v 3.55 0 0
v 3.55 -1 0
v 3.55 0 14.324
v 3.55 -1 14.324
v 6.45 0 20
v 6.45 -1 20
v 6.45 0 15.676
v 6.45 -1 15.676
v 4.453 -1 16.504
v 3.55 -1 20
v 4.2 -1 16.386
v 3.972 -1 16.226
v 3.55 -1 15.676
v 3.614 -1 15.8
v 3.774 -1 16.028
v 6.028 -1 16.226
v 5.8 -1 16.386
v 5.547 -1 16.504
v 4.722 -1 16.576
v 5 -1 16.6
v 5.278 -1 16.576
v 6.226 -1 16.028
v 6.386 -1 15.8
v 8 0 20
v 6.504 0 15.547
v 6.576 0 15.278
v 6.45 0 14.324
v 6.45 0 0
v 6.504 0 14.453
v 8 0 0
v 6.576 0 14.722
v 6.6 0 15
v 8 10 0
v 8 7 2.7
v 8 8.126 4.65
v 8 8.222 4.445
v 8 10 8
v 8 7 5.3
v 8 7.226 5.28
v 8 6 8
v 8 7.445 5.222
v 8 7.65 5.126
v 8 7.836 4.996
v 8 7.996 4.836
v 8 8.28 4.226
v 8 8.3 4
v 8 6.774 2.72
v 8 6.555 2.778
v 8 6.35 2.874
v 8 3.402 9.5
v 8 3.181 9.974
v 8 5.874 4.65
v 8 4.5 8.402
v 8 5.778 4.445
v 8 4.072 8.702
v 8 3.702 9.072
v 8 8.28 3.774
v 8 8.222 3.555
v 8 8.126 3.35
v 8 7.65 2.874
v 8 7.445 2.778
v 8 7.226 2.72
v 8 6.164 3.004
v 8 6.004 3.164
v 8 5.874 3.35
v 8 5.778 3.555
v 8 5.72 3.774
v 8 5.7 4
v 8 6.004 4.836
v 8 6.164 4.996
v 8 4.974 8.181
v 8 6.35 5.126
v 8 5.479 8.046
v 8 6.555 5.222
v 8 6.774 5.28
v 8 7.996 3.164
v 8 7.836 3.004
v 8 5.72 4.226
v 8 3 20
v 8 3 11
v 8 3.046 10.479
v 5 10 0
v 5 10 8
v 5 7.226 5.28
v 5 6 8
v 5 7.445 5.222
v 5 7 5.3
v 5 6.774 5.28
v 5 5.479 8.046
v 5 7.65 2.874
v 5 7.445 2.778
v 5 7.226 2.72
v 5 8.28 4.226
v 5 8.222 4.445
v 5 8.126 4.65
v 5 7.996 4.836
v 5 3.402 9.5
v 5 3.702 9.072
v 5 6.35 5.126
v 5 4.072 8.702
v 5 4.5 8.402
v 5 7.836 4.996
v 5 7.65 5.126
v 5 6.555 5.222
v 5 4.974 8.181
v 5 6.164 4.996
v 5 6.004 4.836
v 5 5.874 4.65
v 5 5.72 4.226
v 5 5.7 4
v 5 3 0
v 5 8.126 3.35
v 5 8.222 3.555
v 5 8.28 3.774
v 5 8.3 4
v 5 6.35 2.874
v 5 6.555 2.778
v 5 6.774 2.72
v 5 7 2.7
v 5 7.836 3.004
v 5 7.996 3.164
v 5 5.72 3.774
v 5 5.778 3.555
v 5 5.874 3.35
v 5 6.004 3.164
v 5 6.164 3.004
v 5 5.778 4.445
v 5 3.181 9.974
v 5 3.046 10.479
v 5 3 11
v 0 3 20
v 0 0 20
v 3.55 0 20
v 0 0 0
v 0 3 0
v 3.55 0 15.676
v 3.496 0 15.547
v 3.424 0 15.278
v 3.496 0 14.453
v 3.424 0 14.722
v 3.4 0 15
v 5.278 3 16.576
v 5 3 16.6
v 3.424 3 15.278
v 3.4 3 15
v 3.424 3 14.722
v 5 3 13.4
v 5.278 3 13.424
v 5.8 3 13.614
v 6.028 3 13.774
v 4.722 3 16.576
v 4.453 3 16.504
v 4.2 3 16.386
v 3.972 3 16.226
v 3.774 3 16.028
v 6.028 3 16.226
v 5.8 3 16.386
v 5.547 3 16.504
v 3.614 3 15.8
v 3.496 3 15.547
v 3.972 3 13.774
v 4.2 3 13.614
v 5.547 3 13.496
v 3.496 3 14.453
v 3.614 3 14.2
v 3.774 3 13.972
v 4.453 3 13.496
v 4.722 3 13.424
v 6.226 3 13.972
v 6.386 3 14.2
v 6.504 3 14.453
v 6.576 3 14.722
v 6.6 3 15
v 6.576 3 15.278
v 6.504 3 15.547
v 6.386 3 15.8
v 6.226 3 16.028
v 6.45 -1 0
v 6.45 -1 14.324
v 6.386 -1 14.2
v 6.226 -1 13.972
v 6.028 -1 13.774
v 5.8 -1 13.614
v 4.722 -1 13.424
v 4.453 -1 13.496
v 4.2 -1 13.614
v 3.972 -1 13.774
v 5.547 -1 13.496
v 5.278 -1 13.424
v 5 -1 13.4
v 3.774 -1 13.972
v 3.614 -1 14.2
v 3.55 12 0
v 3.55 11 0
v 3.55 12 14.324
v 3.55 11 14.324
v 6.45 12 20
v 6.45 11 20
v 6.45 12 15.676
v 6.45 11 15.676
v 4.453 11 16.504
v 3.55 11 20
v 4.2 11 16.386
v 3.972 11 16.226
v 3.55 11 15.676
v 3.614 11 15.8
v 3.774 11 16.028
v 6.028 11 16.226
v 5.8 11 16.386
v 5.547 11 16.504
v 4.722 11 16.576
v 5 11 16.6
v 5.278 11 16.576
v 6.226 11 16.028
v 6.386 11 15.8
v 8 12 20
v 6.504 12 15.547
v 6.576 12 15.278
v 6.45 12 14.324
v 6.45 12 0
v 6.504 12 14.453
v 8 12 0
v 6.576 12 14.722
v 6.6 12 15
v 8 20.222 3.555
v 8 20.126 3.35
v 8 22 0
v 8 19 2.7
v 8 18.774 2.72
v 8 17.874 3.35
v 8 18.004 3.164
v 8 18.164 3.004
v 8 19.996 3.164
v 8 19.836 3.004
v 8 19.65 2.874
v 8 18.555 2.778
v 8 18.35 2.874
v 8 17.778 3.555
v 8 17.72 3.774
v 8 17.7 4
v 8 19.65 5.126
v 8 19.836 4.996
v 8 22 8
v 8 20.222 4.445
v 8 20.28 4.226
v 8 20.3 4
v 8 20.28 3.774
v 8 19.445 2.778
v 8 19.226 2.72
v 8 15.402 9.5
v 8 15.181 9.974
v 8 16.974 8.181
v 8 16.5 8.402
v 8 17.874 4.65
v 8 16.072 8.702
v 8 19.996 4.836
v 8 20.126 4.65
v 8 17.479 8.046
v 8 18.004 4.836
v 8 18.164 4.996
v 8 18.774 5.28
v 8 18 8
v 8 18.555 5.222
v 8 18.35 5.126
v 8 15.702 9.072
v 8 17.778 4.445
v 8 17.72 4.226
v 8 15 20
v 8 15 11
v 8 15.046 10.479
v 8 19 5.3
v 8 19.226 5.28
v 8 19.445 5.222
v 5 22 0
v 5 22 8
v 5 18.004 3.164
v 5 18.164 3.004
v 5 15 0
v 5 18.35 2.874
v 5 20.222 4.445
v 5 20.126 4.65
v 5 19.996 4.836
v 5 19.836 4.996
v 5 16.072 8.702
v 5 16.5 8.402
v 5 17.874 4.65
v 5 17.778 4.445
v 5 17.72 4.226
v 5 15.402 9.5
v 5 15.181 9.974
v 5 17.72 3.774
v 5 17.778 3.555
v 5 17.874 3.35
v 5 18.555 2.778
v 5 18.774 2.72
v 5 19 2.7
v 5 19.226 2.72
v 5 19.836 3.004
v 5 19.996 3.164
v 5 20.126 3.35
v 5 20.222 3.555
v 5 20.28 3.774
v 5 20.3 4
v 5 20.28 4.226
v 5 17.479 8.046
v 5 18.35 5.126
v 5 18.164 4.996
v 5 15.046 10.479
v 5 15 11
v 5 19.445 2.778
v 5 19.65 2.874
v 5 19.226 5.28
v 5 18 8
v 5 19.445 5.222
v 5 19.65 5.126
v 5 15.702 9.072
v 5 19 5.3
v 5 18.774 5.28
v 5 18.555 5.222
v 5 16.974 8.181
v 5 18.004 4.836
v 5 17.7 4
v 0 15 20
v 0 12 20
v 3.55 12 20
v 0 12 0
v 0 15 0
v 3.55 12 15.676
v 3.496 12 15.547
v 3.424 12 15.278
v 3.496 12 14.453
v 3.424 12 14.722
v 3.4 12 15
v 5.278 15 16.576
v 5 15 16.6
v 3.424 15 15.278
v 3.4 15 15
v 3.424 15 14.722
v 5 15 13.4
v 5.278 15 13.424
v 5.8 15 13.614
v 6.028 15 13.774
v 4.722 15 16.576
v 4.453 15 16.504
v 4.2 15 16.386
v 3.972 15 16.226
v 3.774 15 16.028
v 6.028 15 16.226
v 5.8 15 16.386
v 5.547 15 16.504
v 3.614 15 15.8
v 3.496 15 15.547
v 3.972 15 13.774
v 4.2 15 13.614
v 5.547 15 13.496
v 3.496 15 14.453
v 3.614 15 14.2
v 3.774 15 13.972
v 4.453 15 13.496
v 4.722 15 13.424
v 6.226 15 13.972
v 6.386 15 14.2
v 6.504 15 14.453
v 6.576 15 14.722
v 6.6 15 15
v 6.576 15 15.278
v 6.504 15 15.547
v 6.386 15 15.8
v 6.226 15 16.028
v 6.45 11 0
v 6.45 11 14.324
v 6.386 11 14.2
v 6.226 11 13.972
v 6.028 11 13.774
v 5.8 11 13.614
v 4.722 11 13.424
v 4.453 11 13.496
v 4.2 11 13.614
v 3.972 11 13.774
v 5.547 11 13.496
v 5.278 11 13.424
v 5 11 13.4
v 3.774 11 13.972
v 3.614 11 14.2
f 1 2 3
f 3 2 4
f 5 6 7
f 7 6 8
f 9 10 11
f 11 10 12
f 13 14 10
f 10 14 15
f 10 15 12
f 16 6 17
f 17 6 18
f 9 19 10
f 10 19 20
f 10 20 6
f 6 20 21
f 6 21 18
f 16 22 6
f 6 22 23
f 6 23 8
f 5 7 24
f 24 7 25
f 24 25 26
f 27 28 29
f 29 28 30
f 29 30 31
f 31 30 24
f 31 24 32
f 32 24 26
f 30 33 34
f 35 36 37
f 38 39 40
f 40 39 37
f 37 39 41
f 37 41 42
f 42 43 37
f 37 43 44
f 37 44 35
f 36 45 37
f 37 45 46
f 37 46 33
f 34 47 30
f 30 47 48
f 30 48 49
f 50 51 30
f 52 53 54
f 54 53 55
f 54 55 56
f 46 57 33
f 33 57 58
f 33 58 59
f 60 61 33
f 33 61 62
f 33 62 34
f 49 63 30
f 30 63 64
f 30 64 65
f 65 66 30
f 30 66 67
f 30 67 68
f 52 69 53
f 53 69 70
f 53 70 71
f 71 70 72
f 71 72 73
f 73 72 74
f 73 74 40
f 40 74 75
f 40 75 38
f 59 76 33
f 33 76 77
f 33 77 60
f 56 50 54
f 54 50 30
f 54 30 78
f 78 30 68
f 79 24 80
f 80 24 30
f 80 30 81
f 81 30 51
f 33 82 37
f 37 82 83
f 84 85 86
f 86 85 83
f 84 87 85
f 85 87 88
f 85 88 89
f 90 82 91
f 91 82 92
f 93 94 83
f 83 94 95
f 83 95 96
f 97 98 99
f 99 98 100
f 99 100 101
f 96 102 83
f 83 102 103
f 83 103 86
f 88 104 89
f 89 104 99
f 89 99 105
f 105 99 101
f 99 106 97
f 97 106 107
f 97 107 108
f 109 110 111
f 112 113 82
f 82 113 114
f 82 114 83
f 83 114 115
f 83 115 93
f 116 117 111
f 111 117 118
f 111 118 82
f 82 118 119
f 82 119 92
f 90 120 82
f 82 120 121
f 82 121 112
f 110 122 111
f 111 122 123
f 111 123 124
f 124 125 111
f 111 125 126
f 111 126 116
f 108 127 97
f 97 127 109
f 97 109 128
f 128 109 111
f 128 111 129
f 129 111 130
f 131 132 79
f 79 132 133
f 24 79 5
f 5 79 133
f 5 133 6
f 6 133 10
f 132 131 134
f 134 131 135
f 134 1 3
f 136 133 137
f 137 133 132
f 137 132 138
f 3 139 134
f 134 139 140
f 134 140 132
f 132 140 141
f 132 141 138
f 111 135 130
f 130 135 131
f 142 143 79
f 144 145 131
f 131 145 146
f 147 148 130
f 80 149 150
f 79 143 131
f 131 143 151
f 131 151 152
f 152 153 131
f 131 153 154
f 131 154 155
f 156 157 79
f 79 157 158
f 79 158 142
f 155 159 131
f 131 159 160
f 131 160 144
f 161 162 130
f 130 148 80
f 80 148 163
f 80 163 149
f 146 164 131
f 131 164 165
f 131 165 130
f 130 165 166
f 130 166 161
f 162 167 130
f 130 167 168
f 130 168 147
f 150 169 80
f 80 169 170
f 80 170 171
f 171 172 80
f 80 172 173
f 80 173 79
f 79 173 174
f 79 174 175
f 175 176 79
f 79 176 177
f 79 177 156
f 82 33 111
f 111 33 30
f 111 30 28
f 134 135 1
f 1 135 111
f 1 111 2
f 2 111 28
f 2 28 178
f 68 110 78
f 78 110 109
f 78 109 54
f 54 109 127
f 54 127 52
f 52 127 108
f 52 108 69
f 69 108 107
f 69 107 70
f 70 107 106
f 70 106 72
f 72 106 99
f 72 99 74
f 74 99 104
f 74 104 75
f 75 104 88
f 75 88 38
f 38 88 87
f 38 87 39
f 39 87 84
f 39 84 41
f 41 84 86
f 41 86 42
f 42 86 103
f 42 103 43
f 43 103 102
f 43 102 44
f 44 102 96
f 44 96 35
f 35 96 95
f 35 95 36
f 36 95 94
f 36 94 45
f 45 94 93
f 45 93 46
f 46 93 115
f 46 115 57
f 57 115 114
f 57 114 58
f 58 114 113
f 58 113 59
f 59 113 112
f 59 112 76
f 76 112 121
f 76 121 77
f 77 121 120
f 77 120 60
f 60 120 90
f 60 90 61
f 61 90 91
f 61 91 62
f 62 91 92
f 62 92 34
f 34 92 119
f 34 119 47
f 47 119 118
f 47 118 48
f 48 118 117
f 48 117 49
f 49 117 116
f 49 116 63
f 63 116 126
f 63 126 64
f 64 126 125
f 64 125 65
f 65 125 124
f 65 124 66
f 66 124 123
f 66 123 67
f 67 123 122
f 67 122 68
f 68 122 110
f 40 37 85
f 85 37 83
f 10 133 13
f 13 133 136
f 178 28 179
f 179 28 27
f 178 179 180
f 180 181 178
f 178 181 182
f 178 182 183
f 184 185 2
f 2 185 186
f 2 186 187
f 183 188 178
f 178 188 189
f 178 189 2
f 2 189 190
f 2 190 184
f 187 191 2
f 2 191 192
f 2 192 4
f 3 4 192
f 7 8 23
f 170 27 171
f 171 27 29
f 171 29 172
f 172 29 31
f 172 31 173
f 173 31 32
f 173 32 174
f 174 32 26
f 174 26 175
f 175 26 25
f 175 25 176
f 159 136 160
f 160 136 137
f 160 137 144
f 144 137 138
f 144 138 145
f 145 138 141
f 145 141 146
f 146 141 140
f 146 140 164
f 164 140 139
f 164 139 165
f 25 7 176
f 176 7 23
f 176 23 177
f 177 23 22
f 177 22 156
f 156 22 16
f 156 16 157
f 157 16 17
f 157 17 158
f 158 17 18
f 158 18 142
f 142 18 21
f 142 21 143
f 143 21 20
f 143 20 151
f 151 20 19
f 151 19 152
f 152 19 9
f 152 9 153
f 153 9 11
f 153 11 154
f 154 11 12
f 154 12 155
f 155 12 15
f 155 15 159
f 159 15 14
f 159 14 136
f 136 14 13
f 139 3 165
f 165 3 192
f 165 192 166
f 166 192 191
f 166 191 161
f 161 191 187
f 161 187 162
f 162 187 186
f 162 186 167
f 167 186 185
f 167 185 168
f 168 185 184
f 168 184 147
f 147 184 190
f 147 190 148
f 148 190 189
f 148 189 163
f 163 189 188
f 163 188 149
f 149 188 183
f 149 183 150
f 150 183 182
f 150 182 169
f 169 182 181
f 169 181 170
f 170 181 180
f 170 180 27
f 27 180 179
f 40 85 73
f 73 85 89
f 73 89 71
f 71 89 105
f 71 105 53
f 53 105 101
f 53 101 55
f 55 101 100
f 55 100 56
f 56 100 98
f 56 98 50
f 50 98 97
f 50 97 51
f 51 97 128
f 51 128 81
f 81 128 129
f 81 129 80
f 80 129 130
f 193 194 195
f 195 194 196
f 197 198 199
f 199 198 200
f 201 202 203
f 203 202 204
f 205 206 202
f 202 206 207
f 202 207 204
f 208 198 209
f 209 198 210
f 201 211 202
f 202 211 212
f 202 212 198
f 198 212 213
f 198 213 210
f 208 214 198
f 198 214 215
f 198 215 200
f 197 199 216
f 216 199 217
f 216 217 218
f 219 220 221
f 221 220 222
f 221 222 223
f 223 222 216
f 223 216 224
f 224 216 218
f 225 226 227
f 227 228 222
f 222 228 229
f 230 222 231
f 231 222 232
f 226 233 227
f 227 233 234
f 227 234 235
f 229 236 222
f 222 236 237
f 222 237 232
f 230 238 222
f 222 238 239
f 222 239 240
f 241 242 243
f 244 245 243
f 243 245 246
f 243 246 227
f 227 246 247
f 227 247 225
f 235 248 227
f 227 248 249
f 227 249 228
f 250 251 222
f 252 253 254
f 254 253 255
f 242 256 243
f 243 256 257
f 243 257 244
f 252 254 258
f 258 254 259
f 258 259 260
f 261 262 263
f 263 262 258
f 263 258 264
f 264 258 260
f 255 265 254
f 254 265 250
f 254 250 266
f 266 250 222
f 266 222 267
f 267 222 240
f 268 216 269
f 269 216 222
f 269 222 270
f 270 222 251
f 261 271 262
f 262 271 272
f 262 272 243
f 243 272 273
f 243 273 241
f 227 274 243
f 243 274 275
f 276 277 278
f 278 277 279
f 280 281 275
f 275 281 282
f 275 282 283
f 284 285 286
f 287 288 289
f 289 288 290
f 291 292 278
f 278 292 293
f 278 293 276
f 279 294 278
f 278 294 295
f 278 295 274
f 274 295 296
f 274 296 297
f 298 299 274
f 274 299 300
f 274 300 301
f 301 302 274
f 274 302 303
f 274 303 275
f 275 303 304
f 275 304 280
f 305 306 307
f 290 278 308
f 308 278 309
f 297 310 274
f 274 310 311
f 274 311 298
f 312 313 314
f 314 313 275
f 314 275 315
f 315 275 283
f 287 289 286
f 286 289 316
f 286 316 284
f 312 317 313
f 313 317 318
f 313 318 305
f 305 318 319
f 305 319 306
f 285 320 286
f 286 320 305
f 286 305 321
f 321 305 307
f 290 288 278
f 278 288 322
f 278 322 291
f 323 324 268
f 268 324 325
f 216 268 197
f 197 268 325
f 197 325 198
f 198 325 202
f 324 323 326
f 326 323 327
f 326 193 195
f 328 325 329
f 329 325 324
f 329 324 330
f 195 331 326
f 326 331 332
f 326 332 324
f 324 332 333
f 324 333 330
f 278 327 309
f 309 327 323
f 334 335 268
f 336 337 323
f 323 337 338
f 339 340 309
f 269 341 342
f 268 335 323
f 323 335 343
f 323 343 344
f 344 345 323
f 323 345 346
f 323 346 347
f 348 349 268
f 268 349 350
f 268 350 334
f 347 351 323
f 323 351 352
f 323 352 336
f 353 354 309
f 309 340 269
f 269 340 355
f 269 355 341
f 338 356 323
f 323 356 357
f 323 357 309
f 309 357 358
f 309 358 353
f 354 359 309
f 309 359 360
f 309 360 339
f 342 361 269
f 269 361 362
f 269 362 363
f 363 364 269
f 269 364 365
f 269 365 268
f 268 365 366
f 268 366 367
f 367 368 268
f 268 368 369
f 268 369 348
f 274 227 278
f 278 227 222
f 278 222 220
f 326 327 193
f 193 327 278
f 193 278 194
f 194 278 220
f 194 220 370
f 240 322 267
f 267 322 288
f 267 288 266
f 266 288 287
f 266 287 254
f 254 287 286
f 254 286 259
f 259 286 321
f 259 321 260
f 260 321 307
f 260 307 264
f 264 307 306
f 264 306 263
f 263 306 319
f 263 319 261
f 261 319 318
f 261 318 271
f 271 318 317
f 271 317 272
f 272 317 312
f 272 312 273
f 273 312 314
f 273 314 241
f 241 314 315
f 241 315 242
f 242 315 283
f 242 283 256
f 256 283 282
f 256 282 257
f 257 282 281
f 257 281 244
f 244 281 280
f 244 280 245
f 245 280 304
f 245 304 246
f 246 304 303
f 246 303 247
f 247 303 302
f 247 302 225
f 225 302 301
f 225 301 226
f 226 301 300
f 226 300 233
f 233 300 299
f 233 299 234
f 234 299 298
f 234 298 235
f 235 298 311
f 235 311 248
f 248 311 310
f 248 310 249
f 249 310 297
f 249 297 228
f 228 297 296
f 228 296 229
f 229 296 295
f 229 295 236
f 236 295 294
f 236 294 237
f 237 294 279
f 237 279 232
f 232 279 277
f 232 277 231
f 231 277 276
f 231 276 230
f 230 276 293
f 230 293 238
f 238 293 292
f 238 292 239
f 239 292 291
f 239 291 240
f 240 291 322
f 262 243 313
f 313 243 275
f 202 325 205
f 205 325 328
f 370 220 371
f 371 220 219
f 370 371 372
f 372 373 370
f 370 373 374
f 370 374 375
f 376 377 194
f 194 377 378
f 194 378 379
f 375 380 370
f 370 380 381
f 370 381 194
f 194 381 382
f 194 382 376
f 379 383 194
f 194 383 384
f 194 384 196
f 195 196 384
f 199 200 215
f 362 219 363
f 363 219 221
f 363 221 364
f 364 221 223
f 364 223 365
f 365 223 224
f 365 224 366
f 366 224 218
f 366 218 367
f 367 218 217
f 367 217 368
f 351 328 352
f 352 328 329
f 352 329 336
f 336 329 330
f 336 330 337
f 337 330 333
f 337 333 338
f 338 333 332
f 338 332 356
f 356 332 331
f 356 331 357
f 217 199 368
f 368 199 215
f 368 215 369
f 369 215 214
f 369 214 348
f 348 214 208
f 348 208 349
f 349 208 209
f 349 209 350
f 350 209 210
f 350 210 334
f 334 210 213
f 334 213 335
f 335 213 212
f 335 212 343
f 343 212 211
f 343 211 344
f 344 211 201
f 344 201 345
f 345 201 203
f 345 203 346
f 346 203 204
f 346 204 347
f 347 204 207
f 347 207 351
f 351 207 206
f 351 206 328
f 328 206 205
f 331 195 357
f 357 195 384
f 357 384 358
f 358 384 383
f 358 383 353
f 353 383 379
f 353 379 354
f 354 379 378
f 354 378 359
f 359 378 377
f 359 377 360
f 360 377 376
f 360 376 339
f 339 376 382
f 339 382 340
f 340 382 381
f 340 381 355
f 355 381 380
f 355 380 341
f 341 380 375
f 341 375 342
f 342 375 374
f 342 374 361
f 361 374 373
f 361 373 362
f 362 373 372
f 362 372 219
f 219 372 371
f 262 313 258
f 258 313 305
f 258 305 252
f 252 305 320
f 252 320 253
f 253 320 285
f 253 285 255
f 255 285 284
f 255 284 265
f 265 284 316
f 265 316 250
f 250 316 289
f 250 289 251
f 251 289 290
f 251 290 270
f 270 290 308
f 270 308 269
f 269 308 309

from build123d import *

# Parameters (mm, degrees)
MAIN_DEPTH                 = 20
ESQUISSE2_R                = 1.3
VERTICAL_HOLE_DEPTH        = 1
VERTICAL_HOLE_DEPTH_BACK   = 9
ESQUISSE6_W                = 12
ESQUISSE6_H                = 7
CUT_BORDERS_DEPTH          = 4
ESQUISSE7_W                = 2.9
ESQUISSE7_H                = 1
MAKERBEAMSUPPORT_DEPTH     = 20
ESQUISSE3_R                = 1.6
HORIZONTAL_HOLE_DEPTH      = 10
HORIZONTAL_HOLE_DEPTH_BACK = 8
CONG_1_R                   = 3
LPATTERN1_COUNT            = 2
LPATTERN1_PITCH            = 12


with BuildPart() as part:
    # Esquisse1 → Main (new body)
    with BuildSketch(Plane.XY):
        Polygon((0, 0), (8, 0), (8, 10), (5, 10), (5, 3), (0, 3), align=None)
    extrude(amount=MAIN_DEPTH)

    # Esquisse2 → Vertical Hole (cut, two sides)
    with BuildSketch(Plane.ZY) as vertical_hole_sk:
        with Locations((4, 7)):
            Circle(ESQUISSE2_R)
    extrude(amount=VERTICAL_HOLE_DEPTH, mode=Mode.SUBTRACT)
    extrude(vertical_hole_sk.sketch, amount=-VERTICAL_HOLE_DEPTH_BACK, mode=Mode.SUBTRACT)

    # Esquisse6 → Cut Borders (cut, through all)
    with BuildSketch(Plane(origin=(5, 0, 0), x_dir=(0, 0, -1), z_dir=(1, 0, 0))):
        with Locations((-14, 6.5)):
            Rectangle(ESQUISSE6_W, ESQUISSE6_H)
    extrude(amount=CUT_BORDERS_DEPTH, mode=Mode.SUBTRACT)

    # Esquisse7 → MakerBeamSupport (add)
    with BuildSketch(Plane.XY.offset(20)):
        with Locations((5, -0.5)):
            Rectangle(ESQUISSE7_W, ESQUISSE7_H)
    extrude(amount=-MAKERBEAMSUPPORT_DEPTH)

    # Esquisse3 → Horizontal Hole (cut, two sides)
    with BuildSketch(Plane.XZ.offset(-3)) as horizontal_hole_sk:
        with Locations((5, 15)):
            Circle(ESQUISSE3_R)
    extrude(amount=HORIZONTAL_HOLE_DEPTH, mode=Mode.SUBTRACT)
    extrude(horizontal_hole_sk.sketch, amount=-HORIZONTAL_HOLE_DEPTH_BACK, mode=Mode.SUBTRACT)

    # Congé1
    cong_1_edges = [part.edges().sort_by_distance(p)[0] for p in [
        (6.5, 3, 8),
    ]]
    fillet(cong_1_edges, radius=CONG_1_R)


with BuildPart() as lpattern1_1:
    # LPattern1: pattern copy
    add(part.part.moved(Location(Vector(0, 1, 0) * (1 * LPATTERN1_PITCH))))


solid = Compound([part.part, lpattern1_1.part])
